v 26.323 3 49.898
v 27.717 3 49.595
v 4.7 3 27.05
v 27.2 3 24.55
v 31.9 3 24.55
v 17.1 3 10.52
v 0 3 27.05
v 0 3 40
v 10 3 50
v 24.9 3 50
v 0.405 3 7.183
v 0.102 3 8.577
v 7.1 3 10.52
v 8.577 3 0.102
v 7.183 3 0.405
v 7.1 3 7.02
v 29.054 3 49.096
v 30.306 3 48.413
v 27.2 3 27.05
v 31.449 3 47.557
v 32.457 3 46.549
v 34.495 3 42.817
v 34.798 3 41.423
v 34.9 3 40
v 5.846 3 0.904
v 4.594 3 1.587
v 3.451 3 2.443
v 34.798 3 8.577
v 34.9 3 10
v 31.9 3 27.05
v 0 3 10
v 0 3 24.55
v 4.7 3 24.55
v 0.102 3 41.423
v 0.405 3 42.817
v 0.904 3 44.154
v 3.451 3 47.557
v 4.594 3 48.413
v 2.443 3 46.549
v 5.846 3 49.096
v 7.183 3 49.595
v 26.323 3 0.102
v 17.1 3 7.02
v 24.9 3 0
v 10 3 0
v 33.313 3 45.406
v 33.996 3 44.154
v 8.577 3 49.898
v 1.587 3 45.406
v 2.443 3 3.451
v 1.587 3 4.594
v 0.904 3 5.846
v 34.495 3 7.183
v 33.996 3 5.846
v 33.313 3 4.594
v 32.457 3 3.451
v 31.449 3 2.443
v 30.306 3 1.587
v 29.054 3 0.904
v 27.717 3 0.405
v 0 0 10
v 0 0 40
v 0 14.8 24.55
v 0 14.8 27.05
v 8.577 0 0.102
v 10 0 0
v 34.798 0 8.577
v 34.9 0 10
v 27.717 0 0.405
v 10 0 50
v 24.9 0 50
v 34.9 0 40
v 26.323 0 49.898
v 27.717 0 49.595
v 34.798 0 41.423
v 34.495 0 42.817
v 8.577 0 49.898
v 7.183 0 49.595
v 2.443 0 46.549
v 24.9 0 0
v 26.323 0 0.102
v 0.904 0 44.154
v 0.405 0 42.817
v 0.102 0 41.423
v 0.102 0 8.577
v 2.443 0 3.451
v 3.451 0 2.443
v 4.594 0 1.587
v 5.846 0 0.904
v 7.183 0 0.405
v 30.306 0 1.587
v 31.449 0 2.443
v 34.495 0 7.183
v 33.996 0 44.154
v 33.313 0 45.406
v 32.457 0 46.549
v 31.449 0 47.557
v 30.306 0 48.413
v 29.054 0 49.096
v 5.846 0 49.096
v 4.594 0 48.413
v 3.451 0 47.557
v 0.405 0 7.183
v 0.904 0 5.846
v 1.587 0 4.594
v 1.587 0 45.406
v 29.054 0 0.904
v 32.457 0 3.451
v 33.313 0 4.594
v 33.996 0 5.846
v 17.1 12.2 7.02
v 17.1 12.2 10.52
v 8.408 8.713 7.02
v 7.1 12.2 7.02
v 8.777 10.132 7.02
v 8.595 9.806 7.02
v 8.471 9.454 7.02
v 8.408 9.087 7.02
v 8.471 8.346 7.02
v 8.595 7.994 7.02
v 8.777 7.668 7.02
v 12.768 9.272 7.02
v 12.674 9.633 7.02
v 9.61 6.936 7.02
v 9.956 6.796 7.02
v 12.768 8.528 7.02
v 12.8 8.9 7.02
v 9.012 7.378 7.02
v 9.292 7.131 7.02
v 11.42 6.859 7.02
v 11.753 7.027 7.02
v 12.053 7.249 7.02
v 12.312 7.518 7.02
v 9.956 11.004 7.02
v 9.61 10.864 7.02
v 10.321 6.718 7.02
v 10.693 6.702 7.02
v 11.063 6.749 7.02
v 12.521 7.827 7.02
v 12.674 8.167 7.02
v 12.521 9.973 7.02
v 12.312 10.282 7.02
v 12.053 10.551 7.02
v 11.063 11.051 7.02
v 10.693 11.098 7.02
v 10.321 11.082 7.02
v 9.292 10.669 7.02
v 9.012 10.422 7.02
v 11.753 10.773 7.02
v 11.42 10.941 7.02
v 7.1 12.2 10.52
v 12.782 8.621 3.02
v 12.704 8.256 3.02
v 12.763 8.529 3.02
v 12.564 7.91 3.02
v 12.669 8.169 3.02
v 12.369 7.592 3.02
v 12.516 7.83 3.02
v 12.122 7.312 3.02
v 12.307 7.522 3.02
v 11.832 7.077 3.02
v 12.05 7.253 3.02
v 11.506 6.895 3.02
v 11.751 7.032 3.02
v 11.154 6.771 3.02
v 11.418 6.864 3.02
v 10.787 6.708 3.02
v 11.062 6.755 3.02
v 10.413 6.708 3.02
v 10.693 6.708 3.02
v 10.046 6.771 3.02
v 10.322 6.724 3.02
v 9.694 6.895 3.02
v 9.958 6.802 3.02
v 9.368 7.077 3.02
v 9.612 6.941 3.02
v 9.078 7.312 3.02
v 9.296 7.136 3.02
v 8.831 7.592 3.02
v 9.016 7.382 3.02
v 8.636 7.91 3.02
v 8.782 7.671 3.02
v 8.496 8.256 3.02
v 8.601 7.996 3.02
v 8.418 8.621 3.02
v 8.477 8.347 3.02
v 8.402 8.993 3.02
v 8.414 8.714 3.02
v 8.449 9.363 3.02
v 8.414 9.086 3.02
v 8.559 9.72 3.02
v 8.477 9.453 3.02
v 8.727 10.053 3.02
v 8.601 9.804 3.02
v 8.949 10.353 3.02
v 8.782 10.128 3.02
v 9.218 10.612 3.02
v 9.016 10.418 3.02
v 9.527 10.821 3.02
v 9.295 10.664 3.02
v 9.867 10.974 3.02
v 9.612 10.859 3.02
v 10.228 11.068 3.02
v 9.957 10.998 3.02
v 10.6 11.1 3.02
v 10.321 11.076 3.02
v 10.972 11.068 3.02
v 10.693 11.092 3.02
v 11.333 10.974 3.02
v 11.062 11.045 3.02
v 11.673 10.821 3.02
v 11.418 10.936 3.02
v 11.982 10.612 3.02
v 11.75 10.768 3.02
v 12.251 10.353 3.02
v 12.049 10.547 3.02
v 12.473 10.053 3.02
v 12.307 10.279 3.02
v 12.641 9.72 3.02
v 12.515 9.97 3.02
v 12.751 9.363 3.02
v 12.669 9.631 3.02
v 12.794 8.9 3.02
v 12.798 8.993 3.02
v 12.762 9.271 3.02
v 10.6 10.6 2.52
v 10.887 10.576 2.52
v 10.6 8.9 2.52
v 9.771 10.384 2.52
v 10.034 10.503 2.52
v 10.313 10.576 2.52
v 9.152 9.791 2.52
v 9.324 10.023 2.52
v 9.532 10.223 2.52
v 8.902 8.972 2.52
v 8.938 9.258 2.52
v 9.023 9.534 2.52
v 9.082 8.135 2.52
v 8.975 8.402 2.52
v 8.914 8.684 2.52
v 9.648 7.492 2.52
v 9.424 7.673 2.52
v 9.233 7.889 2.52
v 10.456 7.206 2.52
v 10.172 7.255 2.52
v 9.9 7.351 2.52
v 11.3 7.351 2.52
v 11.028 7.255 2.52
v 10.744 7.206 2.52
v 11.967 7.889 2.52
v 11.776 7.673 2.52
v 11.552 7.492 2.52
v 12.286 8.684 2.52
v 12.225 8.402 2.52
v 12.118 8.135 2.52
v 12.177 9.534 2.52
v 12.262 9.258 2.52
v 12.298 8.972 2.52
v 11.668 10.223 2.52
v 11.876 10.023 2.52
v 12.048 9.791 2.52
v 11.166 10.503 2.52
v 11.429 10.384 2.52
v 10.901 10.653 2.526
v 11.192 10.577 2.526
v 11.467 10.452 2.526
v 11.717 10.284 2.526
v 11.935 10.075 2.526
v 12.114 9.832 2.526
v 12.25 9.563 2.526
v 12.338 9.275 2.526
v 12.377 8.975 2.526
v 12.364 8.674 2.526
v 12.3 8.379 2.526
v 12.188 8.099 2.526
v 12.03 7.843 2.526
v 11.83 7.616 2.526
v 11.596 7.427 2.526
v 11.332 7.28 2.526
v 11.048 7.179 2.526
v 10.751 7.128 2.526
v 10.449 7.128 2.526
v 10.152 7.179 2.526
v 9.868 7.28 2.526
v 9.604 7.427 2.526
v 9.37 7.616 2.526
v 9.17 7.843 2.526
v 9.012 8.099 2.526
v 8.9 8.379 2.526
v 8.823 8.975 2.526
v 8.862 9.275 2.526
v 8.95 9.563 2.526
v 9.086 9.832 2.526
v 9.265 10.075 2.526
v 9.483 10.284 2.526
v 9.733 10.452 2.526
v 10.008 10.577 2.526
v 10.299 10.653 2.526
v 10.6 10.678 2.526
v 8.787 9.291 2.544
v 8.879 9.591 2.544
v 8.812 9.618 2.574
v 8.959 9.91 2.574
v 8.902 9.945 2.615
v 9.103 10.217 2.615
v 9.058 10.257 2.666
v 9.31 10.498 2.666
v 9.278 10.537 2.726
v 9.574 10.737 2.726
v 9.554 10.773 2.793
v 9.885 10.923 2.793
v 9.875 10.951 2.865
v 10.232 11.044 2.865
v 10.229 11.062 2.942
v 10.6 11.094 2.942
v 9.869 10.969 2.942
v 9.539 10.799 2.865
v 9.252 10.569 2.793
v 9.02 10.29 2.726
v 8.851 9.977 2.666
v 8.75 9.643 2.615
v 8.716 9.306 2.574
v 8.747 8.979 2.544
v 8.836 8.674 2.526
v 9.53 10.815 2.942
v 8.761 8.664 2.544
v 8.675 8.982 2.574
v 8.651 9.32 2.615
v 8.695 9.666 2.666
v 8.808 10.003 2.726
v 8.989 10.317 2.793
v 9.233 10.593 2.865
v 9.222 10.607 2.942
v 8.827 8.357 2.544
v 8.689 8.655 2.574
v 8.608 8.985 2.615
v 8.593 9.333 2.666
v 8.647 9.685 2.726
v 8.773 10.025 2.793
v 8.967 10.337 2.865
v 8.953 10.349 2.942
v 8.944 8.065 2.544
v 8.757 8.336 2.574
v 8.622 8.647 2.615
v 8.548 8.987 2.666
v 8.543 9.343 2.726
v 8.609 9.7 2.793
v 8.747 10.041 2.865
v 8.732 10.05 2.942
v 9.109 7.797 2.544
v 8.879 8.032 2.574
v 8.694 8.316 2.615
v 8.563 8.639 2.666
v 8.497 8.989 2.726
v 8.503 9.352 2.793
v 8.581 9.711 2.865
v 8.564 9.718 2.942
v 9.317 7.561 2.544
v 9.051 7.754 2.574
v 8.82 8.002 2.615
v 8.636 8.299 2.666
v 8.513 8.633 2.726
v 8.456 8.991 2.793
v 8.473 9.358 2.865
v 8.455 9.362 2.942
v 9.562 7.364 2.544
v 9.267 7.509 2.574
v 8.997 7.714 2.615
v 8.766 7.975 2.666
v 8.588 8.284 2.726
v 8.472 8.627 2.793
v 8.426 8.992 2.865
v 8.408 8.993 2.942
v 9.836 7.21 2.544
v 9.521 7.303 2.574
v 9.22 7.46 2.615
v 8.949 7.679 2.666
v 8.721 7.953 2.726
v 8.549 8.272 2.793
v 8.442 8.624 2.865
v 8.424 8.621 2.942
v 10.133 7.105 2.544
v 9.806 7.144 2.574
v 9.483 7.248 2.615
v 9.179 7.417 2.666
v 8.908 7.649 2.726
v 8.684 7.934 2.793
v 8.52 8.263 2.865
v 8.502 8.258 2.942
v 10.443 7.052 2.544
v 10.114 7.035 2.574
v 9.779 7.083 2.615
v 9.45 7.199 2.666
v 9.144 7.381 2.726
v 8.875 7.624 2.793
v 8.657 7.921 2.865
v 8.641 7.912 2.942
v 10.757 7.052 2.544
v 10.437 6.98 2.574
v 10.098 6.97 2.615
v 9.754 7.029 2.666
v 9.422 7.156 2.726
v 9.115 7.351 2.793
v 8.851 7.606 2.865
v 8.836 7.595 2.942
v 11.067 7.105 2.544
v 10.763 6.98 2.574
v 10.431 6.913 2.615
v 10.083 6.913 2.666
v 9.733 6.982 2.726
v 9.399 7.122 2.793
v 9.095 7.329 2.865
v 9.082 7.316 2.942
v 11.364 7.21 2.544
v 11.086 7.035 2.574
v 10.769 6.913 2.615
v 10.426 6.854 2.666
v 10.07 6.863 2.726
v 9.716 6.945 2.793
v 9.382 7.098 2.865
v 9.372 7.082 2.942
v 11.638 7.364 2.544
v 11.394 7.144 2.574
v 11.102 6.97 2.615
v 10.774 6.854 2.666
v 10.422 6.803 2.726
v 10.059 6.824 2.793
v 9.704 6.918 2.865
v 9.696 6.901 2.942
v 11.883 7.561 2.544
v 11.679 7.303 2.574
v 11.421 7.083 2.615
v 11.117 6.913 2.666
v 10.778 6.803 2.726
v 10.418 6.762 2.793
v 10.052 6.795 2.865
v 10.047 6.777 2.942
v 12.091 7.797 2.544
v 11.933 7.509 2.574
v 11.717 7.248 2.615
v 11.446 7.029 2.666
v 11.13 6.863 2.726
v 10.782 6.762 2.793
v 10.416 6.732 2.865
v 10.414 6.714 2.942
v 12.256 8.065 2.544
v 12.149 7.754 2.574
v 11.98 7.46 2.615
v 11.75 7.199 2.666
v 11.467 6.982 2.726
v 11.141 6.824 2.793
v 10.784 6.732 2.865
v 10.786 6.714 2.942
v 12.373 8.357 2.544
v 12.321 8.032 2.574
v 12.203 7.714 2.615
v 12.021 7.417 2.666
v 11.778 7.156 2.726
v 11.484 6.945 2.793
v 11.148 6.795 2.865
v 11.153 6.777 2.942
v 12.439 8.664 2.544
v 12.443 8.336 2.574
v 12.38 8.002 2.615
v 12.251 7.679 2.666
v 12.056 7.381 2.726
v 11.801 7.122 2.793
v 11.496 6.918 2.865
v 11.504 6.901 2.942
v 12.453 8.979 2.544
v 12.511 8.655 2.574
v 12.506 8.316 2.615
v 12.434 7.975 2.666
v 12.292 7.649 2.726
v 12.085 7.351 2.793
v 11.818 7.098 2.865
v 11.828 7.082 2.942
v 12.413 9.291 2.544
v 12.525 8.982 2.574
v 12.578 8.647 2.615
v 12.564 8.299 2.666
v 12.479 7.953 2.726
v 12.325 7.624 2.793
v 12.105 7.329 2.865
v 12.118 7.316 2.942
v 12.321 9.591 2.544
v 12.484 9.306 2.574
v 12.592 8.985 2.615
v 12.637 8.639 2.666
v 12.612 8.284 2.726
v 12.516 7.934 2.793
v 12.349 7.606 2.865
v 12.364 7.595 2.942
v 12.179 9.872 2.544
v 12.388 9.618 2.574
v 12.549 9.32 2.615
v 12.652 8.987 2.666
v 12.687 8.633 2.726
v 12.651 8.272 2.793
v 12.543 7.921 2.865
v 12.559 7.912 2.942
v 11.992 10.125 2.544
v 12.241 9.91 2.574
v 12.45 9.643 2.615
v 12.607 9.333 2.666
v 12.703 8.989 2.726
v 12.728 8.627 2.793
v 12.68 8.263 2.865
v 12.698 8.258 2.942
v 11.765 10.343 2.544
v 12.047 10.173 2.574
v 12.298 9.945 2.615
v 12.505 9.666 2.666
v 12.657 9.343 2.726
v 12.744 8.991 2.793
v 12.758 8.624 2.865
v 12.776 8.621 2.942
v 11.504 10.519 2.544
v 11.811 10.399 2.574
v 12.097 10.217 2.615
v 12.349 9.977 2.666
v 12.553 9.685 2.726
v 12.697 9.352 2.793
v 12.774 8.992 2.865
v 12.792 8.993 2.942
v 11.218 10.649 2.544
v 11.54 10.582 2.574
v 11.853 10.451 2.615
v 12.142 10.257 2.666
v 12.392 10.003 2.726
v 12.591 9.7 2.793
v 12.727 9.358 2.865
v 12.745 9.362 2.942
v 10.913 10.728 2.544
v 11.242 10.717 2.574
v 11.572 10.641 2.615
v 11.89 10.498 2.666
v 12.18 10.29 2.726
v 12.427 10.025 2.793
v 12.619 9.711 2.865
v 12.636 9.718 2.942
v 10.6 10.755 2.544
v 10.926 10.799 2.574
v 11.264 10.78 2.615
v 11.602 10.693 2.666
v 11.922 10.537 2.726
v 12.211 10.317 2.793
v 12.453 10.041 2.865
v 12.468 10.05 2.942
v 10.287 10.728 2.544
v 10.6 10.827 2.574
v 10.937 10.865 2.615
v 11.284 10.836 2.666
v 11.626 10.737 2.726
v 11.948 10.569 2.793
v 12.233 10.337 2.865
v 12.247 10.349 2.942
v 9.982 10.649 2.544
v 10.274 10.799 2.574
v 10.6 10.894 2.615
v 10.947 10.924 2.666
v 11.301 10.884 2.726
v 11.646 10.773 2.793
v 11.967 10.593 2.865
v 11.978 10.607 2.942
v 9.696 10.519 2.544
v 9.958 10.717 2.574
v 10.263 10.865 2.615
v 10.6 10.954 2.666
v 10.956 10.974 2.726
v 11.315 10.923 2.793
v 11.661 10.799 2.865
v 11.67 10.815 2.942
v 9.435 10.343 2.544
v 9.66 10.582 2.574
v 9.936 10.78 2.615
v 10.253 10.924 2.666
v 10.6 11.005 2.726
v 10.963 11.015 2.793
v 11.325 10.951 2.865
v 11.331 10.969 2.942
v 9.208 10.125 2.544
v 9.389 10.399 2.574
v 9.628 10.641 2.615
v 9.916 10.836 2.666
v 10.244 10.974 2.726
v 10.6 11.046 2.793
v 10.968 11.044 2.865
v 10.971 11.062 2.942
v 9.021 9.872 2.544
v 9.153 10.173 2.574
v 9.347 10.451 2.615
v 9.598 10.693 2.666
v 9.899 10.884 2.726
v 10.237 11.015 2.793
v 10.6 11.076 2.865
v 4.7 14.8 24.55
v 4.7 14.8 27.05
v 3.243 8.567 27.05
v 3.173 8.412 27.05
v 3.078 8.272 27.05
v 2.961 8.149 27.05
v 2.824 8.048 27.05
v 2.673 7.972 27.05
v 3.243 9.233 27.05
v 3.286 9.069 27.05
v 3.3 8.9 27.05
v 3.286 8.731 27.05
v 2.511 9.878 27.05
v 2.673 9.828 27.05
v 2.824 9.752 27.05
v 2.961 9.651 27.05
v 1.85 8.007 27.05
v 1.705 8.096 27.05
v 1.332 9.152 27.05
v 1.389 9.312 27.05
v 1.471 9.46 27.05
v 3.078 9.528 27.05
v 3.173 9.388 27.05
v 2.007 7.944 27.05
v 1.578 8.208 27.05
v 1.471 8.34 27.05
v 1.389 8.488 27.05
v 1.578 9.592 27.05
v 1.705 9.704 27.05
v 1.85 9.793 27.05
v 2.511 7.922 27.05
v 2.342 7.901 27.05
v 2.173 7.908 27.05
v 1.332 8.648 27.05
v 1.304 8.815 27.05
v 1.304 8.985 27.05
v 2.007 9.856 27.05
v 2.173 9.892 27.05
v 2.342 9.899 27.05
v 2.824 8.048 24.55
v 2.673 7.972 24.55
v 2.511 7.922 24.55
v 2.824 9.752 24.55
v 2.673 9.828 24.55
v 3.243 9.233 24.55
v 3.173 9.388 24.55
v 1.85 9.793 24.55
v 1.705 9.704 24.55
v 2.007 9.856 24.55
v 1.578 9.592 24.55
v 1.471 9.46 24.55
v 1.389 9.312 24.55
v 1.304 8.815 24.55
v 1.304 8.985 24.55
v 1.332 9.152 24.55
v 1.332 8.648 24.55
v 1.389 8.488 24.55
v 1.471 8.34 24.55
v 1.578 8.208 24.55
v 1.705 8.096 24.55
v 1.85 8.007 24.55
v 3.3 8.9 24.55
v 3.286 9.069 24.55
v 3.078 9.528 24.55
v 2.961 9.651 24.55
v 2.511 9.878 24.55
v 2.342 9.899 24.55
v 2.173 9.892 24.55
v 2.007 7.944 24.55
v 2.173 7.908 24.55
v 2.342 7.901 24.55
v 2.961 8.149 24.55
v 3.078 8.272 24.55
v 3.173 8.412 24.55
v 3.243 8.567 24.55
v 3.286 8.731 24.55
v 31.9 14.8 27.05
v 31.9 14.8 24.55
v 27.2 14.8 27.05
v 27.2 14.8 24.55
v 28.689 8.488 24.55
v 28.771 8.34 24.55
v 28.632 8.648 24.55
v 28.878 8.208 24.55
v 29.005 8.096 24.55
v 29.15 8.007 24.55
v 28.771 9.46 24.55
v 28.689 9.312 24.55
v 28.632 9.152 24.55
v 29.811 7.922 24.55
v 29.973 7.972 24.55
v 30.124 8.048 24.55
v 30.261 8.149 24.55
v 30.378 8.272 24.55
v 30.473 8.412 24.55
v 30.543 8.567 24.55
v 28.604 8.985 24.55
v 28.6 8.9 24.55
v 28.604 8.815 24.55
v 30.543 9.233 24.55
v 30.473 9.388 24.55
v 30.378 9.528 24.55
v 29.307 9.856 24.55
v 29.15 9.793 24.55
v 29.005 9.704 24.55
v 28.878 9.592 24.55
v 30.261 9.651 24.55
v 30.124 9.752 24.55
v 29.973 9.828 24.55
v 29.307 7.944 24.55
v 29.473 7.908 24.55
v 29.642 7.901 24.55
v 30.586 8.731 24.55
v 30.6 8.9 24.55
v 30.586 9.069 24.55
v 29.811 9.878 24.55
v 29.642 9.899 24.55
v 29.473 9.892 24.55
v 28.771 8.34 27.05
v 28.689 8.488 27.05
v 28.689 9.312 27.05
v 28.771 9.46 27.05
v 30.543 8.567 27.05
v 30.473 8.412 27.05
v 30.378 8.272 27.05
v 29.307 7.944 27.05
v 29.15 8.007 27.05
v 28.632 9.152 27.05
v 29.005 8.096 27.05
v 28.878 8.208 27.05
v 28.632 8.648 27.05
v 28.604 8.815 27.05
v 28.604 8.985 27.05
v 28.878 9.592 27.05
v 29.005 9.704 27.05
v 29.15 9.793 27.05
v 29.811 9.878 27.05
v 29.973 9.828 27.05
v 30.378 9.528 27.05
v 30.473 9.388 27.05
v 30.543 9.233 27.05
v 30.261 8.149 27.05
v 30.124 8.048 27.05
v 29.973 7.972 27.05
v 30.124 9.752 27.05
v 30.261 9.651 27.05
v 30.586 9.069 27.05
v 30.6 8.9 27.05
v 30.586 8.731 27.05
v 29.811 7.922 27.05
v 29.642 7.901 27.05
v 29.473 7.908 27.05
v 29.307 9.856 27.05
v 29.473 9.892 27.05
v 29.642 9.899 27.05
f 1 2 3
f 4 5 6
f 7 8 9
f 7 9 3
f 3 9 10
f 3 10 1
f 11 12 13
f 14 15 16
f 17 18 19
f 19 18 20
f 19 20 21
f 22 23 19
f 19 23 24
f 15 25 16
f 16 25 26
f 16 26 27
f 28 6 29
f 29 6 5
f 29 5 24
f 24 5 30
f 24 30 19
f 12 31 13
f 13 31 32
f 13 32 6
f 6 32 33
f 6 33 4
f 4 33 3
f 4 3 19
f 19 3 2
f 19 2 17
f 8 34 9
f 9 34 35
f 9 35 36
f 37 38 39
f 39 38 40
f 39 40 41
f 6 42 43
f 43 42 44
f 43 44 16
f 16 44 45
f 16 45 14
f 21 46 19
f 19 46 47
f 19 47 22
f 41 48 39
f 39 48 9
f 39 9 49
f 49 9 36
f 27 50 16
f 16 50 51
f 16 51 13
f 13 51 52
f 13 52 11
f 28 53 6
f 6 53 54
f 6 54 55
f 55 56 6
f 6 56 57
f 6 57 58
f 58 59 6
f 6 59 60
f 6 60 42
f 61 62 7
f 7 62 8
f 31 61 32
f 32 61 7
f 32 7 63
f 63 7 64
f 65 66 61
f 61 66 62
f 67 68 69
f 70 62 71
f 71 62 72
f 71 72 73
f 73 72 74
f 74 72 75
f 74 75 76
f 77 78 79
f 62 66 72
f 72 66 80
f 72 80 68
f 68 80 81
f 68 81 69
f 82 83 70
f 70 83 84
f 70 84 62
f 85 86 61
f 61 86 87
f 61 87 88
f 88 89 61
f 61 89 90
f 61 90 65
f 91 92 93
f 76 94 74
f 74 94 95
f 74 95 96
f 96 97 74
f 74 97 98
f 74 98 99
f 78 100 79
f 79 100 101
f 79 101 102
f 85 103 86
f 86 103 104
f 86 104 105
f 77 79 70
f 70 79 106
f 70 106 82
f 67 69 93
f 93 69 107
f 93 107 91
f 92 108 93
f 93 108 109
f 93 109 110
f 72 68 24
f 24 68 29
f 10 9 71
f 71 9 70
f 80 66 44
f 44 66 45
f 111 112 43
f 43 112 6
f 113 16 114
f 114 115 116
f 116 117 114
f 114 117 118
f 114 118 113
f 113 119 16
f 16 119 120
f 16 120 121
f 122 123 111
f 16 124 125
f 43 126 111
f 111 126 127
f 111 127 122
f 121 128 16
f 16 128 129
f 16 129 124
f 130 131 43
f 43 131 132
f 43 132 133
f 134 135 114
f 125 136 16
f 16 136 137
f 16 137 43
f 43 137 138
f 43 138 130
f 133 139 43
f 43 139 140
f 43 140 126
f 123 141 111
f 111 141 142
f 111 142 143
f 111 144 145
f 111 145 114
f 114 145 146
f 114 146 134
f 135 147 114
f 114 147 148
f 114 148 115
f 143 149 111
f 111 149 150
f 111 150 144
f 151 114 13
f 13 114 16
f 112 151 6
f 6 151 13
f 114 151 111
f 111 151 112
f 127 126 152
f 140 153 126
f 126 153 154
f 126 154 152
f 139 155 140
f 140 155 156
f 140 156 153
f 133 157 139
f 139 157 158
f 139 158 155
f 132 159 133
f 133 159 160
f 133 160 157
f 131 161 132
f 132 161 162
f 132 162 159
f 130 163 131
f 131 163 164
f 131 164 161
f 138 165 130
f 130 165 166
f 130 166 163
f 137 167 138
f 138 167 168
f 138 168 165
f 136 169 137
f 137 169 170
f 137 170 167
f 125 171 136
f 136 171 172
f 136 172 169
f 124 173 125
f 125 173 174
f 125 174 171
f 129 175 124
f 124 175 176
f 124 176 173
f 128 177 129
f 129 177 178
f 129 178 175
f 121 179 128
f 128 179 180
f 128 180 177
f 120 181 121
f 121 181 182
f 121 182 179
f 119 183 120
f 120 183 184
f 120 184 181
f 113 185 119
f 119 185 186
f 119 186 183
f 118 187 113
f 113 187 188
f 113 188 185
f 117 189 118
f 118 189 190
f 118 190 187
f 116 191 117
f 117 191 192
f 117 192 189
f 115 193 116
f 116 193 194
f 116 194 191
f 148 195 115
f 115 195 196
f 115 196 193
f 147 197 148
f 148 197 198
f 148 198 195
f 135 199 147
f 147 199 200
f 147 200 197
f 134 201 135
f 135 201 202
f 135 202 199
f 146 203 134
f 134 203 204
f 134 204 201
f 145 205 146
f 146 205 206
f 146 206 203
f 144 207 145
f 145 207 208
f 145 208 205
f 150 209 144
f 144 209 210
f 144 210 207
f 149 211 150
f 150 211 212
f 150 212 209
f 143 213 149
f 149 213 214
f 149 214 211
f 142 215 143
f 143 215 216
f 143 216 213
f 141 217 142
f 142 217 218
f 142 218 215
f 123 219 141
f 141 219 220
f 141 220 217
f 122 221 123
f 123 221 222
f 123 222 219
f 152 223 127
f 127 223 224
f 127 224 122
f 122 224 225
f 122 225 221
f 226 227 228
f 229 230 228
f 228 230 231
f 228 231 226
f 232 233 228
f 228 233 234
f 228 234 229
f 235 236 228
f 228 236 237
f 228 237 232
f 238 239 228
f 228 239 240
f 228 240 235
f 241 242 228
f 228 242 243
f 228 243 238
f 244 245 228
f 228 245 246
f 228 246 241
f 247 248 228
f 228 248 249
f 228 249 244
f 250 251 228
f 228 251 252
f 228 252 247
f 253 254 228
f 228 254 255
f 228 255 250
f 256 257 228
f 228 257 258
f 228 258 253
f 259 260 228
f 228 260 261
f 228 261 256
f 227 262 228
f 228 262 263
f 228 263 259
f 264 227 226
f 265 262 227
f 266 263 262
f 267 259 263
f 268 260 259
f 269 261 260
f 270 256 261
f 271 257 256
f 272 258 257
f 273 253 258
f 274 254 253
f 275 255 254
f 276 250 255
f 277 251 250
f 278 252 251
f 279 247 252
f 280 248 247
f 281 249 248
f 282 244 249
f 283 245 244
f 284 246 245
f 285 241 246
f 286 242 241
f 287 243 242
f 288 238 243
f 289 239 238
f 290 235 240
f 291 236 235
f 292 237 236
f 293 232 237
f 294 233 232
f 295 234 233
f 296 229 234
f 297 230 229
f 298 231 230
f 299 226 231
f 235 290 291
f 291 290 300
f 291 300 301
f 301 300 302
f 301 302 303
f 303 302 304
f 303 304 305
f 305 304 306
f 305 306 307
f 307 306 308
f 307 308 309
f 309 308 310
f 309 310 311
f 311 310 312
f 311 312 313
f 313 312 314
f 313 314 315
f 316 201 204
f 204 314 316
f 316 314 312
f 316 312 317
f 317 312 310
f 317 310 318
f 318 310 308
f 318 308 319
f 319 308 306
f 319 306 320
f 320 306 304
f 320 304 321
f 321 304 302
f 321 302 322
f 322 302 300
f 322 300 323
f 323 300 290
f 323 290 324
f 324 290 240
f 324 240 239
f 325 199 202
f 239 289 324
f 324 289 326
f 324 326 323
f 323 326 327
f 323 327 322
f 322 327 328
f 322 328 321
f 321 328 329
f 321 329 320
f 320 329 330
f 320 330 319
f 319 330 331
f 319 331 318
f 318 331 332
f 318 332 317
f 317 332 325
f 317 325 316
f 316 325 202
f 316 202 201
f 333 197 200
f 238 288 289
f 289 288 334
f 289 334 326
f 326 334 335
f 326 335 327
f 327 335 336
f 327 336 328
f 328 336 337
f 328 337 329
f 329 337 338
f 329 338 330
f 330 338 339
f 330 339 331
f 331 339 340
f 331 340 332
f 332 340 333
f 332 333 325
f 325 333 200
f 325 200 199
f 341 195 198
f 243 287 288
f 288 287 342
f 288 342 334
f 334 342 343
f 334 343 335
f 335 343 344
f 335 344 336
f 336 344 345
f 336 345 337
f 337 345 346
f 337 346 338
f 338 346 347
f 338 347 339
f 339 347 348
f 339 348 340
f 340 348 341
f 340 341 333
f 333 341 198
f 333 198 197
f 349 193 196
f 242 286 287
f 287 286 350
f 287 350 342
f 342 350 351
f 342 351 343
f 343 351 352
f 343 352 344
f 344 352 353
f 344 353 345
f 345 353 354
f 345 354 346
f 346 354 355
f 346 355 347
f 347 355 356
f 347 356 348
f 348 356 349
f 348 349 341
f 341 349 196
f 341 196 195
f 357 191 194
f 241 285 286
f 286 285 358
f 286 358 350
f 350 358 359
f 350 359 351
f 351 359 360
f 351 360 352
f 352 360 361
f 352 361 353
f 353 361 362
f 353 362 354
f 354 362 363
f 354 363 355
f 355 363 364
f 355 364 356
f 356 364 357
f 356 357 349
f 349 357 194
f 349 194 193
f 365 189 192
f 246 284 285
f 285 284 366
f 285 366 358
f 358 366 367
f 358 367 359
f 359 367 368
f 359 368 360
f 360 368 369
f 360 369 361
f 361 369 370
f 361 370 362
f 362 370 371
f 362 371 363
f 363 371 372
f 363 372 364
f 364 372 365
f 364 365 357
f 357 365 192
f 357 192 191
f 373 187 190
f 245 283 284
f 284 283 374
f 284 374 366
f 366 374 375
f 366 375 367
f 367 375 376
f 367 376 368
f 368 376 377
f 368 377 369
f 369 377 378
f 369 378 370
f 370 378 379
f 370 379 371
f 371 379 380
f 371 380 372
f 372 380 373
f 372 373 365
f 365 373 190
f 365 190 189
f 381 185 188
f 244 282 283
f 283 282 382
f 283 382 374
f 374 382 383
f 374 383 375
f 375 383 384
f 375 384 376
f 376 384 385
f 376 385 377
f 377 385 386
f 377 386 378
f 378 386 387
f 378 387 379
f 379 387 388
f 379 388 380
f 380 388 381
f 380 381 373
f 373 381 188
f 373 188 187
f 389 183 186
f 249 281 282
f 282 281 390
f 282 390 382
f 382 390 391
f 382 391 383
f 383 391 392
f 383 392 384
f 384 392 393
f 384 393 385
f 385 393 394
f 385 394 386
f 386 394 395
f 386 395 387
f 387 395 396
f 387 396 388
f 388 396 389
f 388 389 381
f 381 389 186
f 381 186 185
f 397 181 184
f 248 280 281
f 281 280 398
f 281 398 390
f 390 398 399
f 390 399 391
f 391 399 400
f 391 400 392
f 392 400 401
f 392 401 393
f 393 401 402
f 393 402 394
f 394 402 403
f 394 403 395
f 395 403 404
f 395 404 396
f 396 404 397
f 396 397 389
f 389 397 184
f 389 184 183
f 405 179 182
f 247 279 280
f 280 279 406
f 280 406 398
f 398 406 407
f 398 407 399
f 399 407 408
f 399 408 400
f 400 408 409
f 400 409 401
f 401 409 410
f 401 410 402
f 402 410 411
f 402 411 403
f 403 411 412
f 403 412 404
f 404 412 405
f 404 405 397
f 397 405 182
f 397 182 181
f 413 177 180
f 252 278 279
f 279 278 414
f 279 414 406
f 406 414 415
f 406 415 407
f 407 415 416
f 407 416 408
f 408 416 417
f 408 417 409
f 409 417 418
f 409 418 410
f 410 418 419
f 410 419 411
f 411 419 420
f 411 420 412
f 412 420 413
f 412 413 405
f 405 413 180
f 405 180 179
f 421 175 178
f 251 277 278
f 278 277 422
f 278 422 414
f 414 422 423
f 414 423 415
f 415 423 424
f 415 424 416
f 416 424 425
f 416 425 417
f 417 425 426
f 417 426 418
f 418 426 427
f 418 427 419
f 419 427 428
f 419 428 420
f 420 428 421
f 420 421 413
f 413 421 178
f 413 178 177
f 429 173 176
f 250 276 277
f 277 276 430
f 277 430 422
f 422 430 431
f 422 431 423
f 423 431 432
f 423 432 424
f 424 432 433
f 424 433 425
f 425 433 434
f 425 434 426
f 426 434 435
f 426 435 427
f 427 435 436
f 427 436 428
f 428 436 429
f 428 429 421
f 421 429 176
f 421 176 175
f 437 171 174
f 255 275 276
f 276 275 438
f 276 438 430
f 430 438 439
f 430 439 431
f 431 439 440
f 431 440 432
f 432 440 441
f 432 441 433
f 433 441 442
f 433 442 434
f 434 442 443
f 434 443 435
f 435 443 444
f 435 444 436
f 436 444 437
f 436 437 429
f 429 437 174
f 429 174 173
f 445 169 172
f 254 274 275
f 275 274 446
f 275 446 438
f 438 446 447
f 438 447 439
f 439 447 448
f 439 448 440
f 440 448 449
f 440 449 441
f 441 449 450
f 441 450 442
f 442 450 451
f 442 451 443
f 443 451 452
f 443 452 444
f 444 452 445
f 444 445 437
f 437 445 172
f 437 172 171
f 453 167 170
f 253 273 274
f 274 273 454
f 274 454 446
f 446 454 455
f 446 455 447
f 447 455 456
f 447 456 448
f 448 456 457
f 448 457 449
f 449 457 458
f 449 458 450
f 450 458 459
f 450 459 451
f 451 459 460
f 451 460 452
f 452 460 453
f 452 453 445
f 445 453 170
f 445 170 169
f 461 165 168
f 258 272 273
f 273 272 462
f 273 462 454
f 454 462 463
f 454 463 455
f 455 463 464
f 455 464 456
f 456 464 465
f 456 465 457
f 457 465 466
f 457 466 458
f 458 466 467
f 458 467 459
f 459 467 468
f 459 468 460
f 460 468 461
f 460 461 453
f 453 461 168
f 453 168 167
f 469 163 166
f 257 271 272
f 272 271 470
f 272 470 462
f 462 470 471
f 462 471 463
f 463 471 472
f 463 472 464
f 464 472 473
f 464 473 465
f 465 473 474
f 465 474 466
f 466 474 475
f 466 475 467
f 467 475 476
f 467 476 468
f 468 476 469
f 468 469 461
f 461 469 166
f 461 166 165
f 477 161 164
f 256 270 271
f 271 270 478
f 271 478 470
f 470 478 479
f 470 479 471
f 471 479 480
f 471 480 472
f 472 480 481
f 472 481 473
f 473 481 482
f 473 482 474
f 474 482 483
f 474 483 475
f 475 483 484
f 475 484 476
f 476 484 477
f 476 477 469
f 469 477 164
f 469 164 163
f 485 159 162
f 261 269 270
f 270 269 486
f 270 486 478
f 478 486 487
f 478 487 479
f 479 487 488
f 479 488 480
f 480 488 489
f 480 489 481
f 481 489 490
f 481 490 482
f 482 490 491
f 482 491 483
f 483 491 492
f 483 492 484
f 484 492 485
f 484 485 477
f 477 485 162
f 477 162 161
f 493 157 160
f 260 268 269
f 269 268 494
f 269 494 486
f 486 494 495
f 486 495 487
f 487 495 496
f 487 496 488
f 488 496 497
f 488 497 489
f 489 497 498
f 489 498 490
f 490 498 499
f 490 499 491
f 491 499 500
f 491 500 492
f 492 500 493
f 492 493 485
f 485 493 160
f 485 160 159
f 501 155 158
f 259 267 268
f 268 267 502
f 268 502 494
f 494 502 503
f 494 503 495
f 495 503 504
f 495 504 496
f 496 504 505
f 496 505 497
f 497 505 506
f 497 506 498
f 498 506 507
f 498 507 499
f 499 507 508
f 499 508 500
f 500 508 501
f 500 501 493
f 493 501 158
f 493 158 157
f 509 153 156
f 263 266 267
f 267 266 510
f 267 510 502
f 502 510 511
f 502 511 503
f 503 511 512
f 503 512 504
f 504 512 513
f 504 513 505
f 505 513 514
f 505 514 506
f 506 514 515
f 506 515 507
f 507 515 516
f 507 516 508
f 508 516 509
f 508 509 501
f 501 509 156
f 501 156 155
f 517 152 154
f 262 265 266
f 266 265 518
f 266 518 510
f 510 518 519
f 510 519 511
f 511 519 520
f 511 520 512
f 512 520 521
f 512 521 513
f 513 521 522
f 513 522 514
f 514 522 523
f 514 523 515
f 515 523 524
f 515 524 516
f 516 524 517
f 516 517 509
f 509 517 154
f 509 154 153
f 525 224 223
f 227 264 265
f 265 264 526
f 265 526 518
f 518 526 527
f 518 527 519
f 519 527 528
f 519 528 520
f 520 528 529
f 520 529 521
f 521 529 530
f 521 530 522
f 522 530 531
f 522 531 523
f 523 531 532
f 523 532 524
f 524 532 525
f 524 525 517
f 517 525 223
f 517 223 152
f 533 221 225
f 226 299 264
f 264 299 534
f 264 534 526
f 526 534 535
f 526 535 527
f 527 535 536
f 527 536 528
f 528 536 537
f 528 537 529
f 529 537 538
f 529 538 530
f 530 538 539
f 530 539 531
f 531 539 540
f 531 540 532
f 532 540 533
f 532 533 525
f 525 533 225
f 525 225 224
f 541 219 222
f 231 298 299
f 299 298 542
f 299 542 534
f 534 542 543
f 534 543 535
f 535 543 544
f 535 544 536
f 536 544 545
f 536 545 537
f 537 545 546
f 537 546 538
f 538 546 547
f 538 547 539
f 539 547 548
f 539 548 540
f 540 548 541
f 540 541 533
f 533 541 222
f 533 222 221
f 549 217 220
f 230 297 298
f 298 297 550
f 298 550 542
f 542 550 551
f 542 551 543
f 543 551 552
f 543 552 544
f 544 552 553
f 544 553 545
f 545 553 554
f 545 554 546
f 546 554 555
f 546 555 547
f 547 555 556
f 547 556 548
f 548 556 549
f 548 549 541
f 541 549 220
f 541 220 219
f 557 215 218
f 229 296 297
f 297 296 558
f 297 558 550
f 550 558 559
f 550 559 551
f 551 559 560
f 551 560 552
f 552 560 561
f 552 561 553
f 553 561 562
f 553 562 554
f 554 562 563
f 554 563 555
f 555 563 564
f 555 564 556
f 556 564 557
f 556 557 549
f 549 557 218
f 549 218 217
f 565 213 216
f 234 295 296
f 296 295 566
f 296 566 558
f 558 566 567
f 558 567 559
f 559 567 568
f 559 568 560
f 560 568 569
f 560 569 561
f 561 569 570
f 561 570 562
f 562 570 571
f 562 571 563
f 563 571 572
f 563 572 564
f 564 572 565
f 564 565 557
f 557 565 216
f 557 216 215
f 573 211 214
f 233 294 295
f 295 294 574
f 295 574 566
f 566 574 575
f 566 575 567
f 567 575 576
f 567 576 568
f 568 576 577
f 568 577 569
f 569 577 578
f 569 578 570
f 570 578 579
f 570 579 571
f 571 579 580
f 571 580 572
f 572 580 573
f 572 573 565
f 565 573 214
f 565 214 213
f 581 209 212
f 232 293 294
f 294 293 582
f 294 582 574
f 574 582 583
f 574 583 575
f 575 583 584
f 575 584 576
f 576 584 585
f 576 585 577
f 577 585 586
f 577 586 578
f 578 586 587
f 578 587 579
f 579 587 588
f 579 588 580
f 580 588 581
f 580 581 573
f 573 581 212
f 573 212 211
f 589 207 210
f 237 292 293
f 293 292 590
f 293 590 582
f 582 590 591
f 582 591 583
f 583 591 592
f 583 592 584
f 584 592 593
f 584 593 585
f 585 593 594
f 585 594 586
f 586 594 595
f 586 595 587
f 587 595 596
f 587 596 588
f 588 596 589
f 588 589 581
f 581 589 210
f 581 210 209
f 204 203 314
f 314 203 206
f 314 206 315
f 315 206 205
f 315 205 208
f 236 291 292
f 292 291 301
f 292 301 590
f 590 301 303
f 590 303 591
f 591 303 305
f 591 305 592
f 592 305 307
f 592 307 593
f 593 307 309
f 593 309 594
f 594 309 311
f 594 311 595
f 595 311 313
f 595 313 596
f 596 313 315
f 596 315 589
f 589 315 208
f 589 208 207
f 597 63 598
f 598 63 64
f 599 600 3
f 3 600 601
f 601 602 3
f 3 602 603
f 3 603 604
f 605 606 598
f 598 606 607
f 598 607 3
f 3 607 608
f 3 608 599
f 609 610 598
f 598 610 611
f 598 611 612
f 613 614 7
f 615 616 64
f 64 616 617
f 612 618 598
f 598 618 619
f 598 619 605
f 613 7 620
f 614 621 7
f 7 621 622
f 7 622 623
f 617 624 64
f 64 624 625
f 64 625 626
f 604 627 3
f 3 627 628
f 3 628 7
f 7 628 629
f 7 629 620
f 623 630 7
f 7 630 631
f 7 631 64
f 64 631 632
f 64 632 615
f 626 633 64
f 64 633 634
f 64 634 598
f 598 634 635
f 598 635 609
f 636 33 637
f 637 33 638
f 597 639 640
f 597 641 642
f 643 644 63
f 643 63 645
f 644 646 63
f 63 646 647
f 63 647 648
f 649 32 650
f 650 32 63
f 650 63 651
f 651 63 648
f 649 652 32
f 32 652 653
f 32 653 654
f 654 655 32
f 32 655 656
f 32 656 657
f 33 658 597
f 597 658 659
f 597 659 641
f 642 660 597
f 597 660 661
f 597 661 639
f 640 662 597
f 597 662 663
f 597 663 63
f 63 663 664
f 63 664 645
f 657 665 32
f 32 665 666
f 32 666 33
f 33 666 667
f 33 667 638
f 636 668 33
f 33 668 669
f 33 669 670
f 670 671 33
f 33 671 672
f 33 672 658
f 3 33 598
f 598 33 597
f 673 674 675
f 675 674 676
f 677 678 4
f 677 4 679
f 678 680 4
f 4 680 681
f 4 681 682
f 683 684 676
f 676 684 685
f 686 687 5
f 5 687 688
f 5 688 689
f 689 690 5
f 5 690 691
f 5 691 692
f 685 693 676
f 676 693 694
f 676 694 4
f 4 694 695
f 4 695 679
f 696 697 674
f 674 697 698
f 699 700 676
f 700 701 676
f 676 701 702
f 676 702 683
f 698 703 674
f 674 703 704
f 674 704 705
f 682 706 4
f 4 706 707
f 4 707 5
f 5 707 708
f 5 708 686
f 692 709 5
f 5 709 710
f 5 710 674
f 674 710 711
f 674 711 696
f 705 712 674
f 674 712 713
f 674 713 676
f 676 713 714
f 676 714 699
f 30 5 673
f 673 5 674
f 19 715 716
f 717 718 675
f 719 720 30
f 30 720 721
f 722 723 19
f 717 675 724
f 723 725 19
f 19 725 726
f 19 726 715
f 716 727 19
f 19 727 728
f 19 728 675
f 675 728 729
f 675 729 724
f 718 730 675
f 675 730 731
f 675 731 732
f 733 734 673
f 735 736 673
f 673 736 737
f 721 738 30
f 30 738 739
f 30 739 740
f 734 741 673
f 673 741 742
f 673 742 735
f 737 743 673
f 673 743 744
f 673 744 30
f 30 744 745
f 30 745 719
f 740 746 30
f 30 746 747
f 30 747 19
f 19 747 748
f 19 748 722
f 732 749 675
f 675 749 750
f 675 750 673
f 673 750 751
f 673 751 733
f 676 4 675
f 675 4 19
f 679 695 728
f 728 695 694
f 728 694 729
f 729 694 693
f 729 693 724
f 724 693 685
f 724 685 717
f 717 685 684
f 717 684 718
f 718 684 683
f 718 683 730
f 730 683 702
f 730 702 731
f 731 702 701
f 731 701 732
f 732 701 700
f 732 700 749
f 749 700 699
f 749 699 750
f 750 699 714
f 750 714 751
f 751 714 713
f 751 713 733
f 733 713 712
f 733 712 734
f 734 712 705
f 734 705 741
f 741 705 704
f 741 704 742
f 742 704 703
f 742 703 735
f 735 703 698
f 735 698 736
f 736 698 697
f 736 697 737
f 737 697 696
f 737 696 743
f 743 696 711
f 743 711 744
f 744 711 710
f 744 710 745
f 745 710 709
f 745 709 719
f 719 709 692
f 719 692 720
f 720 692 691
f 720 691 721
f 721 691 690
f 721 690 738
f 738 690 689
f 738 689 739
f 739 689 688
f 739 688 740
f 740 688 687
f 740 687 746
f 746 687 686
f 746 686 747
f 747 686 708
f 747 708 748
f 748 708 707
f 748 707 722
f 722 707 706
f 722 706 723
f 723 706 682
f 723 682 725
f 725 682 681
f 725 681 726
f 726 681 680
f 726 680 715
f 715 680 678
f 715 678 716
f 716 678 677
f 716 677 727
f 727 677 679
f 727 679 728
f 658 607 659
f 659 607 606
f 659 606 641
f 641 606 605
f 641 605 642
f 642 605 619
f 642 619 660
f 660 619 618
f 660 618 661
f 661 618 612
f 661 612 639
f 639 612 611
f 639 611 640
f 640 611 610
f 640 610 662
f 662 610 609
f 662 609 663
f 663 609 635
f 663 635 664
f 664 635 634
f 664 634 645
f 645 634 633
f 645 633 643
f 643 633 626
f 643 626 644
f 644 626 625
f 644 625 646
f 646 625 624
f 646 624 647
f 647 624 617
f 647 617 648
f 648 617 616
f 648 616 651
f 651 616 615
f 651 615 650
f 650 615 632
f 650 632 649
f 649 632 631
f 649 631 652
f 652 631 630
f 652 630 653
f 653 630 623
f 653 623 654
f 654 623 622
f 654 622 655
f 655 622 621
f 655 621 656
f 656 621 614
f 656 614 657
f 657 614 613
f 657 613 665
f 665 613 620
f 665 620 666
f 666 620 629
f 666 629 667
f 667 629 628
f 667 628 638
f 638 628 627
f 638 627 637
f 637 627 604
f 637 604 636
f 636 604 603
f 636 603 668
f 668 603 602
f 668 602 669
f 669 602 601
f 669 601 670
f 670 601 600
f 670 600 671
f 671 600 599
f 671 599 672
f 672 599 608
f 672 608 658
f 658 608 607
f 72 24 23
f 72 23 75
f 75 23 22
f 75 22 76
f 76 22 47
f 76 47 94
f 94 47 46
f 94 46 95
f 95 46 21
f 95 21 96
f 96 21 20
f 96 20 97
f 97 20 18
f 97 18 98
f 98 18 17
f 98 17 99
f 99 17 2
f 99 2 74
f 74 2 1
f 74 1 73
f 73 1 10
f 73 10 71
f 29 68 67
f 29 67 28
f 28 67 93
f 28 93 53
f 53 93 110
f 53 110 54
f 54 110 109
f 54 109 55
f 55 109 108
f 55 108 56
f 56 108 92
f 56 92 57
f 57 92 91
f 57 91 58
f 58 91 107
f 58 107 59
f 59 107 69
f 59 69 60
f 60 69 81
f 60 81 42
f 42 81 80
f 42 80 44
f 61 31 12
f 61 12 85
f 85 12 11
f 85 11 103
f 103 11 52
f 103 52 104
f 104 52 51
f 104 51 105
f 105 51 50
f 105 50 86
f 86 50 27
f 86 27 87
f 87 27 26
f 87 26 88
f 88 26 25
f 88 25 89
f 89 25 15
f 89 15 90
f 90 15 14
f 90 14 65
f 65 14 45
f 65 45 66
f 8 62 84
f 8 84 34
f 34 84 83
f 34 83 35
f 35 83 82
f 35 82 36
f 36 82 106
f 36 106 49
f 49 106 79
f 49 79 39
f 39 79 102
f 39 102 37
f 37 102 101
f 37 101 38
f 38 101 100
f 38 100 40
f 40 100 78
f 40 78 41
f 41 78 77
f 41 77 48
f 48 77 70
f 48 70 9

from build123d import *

# Parameters (mm, degrees)
ESQUISSE1_W             = 34.9
ESQUISSE1_H             = 3
BOSS_EXTRU_1_DEPTH      = 50
ESQUISSE2_W             = 10
ESQUISSE2_H             = 3.5
BOSS_EXTRU_2_DEPTH      = 9.2
ESQUISSE3_R             = 2.2
BOSS_EXTRU_3_DEPTH      = 4.5
CONG_1_R                = 0.5
ESQUISSE5_W             = 4.7
ESQUISSE5_H             = 2.5
BOSS_EXTRU_5_DEPTH      = 11.8
ENL_V_MAT_EXTRU_1_REACH = 29.05
ESQUISSE6_R             = 1
CONG_2_R                = 10


with BuildPart() as part:
    # Esquisse1 → Boss.-Extru.1 (new body)
    with BuildSketch(Plane.XY):
        with Locations((17.45, 1.5)):
            Rectangle(ESQUISSE1_W, ESQUISSE1_H)
    extrude(amount=BOSS_EXTRU_1_DEPTH)

    # Esquisse2 → Boss.-Extru.2 (add)
    with BuildSketch(Plane(origin=(0, 3, 0), x_dir=(1, 0, 0), z_dir=(0, 1, 0))):
        with Locations((12.1, -8.77)):
            Rectangle(ESQUISSE2_W, ESQUISSE2_H)
    extrude(amount=BOSS_EXTRU_2_DEPTH)

    # Esquisse3 → Boss.-Extru.3 (add)
    with BuildSketch(Plane(origin=(0, 0, 7.02), x_dir=(-1, 0, 0), z_dir=(0, 0, -1))):
        with Locations((-10.6, 8.9)):
            Circle(ESQUISSE3_R)
    extrude(amount=BOSS_EXTRU_3_DEPTH)

    # Congé1
    cong_1_edges = [part.edges().sort_by_distance(p)[0] for p in [
        (12.8, 8.9, 2.52),
    ]]
    fillet(cong_1_edges, radius=CONG_1_R)

    # Esquisse5 → Boss.-Extru.5 (add)
    with BuildSketch(Plane(origin=(0, 3, 0), x_dir=(1, 0, 0), z_dir=(0, 1, 0))):
        with Locations((29.55, -25.8)):
            Rectangle(ESQUISSE5_W, ESQUISSE5_H)
        with Locations((2.35, -25.8)):
            Rectangle(ESQUISSE5_W, ESQUISSE5_H)
    extrude(amount=BOSS_EXTRU_5_DEPTH)

    # Esquisse6 → Enlèv. mat.-Extru.1 (cut, up to next)
    with BuildSketch(Plane.XY.offset(27.05), mode=Mode.PRIVATE) as enl_v_mat_extru_1_sk1:
        with Locations((29.6, 8.9)):
            Circle(ESQUISSE6_R)
    enl_v_mat_extru_1_tool1 = extrude(enl_v_mat_extru_1_sk1.sketch, amount=-ENL_V_MAT_EXTRU_1_REACH, mode=Mode.PRIVATE) & part.part
    add(enl_v_mat_extru_1_tool1.solids().sort_by_distance((29.6, 8.9, 27.05))[0], mode=Mode.SUBTRACT)
    # Esquisse6 → Enlèv. mat.-Extru.1 (cut, up to next)
    with BuildSketch(Plane.XY.offset(27.05), mode=Mode.PRIVATE) as enl_v_mat_extru_1_sk2:
        with Locations((2.3, 8.9)):
            Circle(ESQUISSE6_R)
    enl_v_mat_extru_1_tool2 = extrude(enl_v_mat_extru_1_sk2.sketch, amount=-ENL_V_MAT_EXTRU_1_REACH, mode=Mode.PRIVATE) & part.part
    add(enl_v_mat_extru_1_tool2.solids().sort_by_distance((2.3, 8.9, 27.05))[0], mode=Mode.SUBTRACT)

    # Congé2
    cong_2_edges = [part.edges().sort_by_distance(p)[0] for p in [
        (34.9, 1.5, 50),
        (0, 1.5, 50),
        (34.9, 1.5, 0),
        (0, 1.5, 0),
    ]]
    fillet(cong_2_edges, radius=CONG_2_R)


solid = part.part
